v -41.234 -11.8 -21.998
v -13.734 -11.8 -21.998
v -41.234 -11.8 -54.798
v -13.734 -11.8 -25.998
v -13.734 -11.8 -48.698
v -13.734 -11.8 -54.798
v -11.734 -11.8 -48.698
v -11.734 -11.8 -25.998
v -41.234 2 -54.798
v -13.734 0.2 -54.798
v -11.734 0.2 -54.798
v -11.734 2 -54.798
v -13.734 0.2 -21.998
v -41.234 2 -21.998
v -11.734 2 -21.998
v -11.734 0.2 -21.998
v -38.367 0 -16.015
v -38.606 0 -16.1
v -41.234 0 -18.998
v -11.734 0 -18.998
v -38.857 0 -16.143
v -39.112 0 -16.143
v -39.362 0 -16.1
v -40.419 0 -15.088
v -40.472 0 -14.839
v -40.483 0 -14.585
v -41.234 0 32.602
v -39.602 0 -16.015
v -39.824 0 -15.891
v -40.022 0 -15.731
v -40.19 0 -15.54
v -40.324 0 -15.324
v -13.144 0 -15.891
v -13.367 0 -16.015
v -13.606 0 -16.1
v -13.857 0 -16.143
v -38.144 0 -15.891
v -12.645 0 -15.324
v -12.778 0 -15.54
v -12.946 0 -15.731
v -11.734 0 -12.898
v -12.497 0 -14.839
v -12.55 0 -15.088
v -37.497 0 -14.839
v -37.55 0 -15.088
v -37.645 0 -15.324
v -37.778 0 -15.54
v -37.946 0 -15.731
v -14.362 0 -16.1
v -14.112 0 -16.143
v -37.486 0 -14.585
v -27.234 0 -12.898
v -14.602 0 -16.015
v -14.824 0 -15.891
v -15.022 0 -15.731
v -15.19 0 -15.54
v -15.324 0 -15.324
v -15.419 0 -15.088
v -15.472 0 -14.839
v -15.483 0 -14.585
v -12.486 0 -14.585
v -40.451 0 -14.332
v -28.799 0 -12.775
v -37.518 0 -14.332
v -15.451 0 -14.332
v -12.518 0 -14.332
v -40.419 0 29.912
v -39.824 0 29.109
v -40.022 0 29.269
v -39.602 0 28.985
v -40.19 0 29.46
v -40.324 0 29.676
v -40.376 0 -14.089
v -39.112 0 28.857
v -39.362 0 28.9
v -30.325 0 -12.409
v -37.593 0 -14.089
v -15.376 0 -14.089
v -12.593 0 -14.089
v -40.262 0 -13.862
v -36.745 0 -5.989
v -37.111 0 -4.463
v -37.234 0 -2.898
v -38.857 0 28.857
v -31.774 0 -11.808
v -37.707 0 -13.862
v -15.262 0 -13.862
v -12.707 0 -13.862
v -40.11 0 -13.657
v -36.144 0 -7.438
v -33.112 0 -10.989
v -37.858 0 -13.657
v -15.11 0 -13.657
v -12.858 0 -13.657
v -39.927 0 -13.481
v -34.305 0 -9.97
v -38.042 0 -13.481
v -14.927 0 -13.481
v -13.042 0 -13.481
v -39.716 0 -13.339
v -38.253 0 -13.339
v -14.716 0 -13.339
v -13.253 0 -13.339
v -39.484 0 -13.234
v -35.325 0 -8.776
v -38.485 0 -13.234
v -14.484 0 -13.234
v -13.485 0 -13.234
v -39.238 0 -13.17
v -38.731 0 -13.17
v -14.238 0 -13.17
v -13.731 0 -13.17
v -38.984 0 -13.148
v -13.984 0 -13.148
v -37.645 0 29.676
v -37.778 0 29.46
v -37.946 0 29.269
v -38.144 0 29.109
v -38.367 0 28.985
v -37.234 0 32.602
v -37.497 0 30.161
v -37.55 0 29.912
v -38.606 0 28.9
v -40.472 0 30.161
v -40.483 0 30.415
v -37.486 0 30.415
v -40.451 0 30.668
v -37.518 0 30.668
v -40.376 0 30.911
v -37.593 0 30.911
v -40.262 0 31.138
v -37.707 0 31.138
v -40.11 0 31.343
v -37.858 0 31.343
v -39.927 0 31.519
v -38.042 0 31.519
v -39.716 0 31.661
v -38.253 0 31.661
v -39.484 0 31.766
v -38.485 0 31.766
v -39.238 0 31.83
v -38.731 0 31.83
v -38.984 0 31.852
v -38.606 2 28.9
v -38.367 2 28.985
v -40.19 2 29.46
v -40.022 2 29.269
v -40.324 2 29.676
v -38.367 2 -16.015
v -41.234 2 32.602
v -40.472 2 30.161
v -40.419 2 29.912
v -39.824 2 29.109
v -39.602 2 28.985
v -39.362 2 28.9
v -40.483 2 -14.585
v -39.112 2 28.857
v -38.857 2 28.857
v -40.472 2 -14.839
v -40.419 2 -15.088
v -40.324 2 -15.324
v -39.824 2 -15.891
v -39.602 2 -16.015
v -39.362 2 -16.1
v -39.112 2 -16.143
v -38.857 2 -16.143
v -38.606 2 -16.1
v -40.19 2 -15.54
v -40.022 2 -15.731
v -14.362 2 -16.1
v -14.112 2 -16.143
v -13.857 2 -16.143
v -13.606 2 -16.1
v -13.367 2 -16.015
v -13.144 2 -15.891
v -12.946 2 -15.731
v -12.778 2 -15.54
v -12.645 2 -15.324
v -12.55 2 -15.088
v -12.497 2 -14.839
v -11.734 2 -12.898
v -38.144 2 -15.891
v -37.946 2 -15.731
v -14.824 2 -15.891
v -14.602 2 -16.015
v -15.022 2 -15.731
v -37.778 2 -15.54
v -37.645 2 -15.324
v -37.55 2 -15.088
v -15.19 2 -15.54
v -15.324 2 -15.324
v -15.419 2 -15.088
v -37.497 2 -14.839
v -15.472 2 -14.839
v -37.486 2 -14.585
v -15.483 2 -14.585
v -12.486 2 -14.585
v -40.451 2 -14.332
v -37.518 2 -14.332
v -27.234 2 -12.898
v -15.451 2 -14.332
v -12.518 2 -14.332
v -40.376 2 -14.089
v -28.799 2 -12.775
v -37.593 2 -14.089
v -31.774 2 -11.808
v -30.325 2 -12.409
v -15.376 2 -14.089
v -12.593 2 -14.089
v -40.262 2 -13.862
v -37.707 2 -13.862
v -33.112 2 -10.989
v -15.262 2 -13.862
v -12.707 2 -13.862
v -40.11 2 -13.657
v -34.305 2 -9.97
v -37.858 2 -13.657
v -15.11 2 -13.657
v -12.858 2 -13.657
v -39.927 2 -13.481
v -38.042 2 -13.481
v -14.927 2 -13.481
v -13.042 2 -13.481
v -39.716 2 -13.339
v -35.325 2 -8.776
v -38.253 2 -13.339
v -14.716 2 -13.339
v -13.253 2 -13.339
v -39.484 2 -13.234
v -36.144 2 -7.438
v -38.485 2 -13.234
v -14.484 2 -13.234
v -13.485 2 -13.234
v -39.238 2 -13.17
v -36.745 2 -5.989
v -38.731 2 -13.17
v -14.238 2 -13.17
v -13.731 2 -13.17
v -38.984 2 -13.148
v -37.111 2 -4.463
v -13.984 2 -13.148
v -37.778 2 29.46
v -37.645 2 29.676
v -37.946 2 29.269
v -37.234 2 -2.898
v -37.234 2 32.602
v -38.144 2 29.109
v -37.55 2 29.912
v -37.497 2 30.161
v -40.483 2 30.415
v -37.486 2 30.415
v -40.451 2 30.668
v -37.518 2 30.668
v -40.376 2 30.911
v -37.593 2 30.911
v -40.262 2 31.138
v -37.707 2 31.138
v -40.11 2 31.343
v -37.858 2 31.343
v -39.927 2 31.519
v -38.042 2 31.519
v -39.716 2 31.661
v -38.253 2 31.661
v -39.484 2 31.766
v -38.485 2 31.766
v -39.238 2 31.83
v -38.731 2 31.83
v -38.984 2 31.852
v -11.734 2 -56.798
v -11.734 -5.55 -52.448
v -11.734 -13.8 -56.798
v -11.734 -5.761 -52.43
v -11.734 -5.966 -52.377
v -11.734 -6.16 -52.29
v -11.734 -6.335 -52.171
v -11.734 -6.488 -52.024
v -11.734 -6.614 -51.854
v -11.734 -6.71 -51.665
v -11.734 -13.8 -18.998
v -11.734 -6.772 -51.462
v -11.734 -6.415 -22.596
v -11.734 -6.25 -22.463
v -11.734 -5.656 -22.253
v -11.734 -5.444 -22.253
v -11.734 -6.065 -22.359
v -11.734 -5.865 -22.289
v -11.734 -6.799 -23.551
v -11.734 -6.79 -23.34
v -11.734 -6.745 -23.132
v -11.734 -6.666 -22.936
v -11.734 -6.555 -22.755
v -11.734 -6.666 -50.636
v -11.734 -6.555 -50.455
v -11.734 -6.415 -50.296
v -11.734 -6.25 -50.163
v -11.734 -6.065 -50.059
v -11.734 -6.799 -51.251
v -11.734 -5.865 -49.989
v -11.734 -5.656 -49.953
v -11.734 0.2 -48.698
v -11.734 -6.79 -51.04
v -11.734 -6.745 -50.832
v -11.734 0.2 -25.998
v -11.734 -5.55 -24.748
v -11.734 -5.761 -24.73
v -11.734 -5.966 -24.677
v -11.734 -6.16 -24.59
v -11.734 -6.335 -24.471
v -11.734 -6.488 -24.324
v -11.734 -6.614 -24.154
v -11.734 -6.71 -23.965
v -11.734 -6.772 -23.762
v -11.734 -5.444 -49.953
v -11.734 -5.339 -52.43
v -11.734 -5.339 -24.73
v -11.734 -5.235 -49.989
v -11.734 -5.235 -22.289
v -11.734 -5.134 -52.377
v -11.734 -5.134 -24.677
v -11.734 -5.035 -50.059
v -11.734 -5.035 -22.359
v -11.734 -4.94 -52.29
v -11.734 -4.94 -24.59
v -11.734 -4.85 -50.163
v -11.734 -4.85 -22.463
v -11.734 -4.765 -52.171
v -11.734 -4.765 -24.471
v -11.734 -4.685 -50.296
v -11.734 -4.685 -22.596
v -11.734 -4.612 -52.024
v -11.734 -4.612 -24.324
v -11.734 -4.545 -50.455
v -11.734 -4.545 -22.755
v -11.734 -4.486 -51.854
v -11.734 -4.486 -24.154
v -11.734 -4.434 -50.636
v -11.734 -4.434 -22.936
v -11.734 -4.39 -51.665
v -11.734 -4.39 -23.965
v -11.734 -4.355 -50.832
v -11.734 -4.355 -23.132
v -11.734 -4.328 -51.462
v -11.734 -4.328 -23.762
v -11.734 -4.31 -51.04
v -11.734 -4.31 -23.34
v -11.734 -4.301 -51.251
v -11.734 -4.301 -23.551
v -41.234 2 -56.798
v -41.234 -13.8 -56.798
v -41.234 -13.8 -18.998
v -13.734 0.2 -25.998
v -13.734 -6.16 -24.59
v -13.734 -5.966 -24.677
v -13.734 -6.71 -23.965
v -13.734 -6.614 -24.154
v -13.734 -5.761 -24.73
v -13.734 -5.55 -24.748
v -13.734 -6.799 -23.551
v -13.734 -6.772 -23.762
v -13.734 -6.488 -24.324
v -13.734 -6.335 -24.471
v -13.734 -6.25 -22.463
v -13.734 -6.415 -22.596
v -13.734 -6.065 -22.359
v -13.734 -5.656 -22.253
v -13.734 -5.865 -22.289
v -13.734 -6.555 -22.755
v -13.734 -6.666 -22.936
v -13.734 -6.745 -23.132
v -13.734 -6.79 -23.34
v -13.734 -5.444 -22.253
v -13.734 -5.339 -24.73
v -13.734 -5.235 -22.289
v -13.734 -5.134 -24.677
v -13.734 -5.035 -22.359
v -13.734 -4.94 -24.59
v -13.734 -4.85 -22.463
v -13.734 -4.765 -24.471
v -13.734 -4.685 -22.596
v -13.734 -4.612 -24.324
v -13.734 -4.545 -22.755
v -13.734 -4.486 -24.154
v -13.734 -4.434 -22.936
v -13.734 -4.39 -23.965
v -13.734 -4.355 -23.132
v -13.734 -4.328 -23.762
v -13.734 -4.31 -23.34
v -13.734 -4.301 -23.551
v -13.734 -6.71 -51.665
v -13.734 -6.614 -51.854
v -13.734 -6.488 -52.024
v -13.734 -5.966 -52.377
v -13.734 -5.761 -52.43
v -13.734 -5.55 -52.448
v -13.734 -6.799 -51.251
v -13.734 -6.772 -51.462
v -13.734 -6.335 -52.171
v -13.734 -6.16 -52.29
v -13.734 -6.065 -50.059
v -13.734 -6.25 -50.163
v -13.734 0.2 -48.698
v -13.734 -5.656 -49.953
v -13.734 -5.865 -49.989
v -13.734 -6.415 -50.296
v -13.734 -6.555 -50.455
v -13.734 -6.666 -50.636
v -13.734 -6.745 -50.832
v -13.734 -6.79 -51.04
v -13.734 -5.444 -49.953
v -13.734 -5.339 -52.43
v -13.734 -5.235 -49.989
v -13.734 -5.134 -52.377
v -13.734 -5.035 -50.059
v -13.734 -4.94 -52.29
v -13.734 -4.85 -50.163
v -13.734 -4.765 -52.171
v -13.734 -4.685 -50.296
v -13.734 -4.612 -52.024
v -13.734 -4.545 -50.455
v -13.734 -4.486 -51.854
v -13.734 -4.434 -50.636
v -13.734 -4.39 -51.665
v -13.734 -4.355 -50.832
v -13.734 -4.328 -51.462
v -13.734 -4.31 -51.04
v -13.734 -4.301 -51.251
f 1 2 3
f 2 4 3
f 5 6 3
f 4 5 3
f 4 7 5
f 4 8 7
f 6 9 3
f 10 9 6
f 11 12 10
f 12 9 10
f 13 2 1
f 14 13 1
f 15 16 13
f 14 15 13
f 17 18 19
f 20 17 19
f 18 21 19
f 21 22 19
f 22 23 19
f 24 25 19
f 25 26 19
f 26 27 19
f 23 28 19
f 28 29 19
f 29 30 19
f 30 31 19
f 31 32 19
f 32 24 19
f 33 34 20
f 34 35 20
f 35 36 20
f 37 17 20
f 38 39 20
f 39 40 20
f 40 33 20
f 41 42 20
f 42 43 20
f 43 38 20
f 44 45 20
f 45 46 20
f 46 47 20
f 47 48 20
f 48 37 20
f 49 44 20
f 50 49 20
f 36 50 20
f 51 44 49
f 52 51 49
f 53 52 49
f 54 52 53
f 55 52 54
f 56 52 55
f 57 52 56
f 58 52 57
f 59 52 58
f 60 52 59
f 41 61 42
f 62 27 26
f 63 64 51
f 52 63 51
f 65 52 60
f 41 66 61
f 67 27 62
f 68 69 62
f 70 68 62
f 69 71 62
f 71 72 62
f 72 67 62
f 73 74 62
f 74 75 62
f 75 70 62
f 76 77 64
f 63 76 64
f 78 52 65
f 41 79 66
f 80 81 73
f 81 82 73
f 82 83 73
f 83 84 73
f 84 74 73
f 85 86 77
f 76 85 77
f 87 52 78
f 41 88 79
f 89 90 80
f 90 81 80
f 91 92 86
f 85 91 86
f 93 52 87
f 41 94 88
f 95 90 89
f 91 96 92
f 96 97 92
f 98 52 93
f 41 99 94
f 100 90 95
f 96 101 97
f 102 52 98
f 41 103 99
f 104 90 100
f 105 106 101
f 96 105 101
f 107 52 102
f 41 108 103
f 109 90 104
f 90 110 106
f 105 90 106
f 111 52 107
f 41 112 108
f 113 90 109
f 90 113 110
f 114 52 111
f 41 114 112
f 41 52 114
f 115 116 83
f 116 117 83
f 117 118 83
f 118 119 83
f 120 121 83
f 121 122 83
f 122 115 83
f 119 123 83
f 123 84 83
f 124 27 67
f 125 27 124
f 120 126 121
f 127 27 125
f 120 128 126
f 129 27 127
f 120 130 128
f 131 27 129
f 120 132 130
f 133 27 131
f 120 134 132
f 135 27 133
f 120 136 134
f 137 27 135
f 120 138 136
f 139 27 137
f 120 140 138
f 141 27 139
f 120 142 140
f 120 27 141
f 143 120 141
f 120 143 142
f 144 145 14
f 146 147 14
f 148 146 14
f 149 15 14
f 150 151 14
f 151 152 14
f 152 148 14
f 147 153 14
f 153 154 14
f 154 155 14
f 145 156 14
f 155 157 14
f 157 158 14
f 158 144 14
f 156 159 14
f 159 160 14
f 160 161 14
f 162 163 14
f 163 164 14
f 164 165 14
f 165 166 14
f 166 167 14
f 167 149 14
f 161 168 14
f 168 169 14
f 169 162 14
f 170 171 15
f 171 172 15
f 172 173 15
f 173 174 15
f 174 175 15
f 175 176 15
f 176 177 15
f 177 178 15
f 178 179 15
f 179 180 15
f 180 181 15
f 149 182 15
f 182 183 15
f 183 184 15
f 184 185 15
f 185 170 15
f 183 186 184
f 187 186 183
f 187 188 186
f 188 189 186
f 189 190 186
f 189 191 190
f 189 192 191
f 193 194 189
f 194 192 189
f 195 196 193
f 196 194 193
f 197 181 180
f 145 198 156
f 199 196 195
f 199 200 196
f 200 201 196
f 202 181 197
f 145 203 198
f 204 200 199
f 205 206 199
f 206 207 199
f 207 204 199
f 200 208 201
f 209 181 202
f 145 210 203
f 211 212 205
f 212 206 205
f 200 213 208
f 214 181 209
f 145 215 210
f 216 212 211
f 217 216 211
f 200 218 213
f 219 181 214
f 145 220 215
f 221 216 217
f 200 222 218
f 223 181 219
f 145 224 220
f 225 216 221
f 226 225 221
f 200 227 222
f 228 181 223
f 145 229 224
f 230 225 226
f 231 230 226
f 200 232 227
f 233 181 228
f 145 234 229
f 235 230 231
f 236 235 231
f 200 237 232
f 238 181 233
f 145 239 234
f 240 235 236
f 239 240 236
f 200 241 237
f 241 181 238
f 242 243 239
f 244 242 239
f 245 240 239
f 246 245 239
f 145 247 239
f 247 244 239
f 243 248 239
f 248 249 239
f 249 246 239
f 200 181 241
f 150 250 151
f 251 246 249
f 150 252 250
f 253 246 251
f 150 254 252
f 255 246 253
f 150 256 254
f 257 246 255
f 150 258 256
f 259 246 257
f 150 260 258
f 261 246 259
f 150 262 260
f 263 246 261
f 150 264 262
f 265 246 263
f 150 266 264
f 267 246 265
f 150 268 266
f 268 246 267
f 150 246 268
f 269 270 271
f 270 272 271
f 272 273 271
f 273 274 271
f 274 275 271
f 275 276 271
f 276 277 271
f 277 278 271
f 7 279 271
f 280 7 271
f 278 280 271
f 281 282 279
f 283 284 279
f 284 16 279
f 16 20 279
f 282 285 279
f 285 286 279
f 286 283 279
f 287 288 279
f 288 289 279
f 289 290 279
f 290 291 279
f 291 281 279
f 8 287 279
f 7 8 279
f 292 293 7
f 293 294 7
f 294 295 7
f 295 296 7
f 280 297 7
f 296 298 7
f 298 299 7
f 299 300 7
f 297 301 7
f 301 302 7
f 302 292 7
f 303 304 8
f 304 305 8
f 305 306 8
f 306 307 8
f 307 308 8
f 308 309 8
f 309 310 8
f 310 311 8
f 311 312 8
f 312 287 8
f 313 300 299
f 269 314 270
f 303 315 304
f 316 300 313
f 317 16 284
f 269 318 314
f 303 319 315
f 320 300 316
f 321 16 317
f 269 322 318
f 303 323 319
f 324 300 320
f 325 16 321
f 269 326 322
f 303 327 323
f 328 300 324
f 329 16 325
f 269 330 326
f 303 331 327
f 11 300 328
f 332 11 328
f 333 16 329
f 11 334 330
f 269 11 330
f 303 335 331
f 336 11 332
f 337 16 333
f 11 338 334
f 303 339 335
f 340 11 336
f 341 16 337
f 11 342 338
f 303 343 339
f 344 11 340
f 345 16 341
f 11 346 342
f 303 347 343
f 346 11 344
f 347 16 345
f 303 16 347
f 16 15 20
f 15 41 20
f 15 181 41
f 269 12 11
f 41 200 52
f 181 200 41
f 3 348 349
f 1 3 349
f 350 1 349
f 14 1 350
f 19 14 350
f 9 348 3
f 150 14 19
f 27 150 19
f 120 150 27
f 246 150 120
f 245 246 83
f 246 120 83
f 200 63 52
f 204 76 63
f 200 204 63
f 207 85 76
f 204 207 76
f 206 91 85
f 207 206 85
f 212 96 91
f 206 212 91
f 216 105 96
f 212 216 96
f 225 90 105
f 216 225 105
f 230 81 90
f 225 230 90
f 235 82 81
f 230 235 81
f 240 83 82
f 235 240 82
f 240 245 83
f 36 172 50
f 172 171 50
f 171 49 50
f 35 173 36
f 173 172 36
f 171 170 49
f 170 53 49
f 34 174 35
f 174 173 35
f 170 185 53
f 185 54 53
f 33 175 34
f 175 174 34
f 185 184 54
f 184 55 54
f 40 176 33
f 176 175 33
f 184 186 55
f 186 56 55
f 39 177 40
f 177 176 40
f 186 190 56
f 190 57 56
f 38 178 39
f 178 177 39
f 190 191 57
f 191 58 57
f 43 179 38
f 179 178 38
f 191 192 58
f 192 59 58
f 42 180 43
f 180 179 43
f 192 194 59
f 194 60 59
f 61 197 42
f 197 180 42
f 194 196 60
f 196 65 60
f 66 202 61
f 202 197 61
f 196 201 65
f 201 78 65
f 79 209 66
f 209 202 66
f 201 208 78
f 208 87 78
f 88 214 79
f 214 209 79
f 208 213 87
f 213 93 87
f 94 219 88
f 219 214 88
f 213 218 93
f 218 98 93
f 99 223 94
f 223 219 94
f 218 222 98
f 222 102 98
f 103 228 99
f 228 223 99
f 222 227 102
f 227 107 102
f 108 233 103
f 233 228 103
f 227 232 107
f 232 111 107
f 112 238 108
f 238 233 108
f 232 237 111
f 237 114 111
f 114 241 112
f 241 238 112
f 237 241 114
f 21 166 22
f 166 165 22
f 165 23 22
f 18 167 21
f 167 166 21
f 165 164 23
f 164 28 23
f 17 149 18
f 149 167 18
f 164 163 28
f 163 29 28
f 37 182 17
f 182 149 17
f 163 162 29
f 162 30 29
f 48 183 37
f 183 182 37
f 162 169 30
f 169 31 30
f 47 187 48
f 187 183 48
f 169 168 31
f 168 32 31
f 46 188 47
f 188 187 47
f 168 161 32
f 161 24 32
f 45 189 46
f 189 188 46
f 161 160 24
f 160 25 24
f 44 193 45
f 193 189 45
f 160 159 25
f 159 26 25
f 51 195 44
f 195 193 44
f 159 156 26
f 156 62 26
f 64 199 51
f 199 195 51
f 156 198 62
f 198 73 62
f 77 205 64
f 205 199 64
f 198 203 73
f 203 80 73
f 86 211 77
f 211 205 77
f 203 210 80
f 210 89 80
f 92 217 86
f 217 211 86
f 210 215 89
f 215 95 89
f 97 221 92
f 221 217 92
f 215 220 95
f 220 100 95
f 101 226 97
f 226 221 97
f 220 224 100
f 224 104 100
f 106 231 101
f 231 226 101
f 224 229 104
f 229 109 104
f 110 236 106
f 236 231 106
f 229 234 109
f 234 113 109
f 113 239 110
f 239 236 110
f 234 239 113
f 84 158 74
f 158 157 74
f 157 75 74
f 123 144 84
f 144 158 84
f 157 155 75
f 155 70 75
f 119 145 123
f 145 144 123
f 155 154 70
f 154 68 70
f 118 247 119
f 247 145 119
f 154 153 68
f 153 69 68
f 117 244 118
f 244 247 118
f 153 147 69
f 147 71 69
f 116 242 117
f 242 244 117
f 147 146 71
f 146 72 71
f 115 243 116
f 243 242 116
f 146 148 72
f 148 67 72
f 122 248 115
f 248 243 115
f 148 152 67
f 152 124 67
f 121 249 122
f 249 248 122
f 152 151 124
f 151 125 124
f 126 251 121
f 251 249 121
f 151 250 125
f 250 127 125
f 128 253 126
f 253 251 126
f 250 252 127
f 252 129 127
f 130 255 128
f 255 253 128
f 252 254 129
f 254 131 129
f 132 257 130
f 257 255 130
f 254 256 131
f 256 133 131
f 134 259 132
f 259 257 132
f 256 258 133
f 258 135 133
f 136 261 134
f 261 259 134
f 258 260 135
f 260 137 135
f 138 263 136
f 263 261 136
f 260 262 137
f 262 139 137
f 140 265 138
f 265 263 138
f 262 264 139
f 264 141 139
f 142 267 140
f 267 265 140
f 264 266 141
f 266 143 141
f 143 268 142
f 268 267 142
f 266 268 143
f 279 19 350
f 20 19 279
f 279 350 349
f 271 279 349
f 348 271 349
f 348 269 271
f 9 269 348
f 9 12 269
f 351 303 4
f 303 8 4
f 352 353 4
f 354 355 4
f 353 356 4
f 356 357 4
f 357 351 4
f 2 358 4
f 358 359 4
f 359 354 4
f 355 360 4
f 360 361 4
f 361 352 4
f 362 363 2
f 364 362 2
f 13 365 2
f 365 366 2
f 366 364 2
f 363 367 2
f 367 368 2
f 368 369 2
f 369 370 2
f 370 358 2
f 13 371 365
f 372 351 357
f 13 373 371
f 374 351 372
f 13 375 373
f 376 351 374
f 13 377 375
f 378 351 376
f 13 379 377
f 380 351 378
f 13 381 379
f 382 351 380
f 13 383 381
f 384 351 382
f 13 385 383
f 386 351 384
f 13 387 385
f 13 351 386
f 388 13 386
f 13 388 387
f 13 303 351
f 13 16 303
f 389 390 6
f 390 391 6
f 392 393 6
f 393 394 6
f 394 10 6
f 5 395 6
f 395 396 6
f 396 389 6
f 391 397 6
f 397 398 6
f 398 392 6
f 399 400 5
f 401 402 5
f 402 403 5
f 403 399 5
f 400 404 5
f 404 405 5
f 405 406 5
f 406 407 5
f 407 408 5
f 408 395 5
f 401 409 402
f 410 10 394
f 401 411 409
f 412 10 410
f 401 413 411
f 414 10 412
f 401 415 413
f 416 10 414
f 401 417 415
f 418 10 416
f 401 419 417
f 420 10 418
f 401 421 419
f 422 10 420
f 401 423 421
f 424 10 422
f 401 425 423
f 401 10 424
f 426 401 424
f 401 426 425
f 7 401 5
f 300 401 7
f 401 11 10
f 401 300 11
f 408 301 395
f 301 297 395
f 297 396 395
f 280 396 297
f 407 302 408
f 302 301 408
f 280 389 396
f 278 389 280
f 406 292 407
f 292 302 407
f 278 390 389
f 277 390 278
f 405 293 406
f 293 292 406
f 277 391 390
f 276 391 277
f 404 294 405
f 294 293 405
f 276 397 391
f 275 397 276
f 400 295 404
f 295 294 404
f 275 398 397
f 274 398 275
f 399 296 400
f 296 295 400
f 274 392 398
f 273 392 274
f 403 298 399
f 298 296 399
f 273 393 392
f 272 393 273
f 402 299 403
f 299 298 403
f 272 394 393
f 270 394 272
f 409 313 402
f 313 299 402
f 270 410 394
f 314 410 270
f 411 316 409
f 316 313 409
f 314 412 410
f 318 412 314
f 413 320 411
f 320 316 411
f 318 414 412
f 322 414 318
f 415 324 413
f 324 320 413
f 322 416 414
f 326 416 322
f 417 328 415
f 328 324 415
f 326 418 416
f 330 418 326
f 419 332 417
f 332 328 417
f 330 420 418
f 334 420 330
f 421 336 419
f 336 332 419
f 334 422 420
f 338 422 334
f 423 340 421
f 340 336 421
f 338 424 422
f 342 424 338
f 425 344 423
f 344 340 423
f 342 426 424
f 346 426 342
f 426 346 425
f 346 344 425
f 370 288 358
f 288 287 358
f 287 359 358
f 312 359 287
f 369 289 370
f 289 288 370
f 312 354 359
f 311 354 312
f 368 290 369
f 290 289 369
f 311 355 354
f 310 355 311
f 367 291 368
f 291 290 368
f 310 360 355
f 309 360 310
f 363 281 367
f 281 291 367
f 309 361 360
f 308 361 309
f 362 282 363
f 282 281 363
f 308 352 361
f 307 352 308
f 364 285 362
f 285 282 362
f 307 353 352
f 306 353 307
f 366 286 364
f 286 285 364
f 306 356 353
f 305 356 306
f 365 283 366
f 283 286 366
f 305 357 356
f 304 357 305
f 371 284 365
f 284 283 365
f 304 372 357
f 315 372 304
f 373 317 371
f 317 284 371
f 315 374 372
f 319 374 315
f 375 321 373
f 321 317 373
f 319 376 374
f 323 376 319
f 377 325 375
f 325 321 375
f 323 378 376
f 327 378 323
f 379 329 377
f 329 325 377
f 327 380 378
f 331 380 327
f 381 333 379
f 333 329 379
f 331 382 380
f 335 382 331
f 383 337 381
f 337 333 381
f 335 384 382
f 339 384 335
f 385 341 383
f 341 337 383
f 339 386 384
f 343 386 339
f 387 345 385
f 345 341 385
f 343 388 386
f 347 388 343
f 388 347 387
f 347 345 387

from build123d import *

# Parameters (mm, degrees)
BOSS_EXTRUDE1_DEPTH = 2
FILLET1_R           = 10
SKETCH2_R           = 1.5
CUT_EXTRUDE1_DEPTH  = 53.603569832
SKETCH3_W           = 29.5
SKETCH3_H           = 2
BOSS_EXTRUDE2_DEPTH = 5.1
SKETCH4_W           = 29.5
SKETCH4_H           = 3
BOSS_EXTRUDE3_DEPTH = 13.8
SKETCH5_W           = 29.5
SKETCH5_H           = 2
BOSS_EXTRUDE5_DEPTH = 34.8
SKETCH7_W           = 29.5
SKETCH7_H           = 2
BOSS_EXTRUDE6_DEPTH = 13.8
SKETCH8_W           = 2
SKETCH8_H           = 4
SKETCH8_H_2         = 6.1
BOSS_EXTRUDE7_DEPTH = 12
SKETCH9_2_R         = 1.25
CUT_EXTRUDE3_DEPTH  = 12


with BuildPart() as part:
    # Sketch1 → Boss-Extrude1 (new body)
    with BuildSketch(Plane(origin=(0, 0, 0), x_dir=(1, 0, 0), z_dir=(0, 1, 0))):
        Polygon((-41.234375, 16.8984375), (-41.234375, -32.6015625), (-37.234375, -32.6015625), (-37.234375, 12.8984375), (-11.734375, 12.8984375), (-11.734375, 16.8984375), align=None)
    extrude(amount=BOSS_EXTRUDE1_DEPTH)

    # Fillet1
    fillet1_edges = [part.edges().sort_by_distance(p)[0] for p in [
        (-37.234375, 1, -12.8984375),
    ]]
    fillet(fillet1_edges, radius=FILLET1_R)

    # Sketch2 → Cut-Extrude1 (cut, through all)
    with BuildSketch(Plane(origin=(0, 2, 0), x_dir=(1, 0, 0), z_dir=(0, 1, 0))):
        with Locations((-38.984375, -30.3515625)):
            Circle(SKETCH2_R)
        with Locations((-38.984375, 14.6484375)):
            Circle(SKETCH2_R)
        with Locations((-13.984375, 14.6484375)):
            Circle(SKETCH2_R)
    extrude(amount=-CUT_EXTRUDE1_DEPTH, mode=Mode.SUBTRACT)

    # Sketch3 → Boss-Extrude2 (add)
    with BuildSketch(Plane(origin=(0, 0, -16.8984375), x_dir=(-1, 0, 0), z_dir=(0, 0, -1))):
        with Locations((26.484375, 1)):
            Rectangle(SKETCH3_W, SKETCH3_H)
    extrude(amount=BOSS_EXTRUDE2_DEPTH)

    # Sketch4 → Boss-Extrude3 (add)
    with BuildSketch(Plane.XZ):
        with Locations((-26.484375, -20.4984375)):
            Rectangle(SKETCH4_W, SKETCH4_H)
    extrude(amount=BOSS_EXTRUDE3_DEPTH)

    # Sketch5 → Boss-Extrude5 (add)
    with BuildSketch(Plane(origin=(0, 0, -21.9984375), x_dir=(-1, 0, 0), z_dir=(0, 0, -1))):
        with Locations((26.484375, -12.8)):
            Rectangle(SKETCH5_W, SKETCH5_H)
    extrude(amount=BOSS_EXTRUDE5_DEPTH)

    # Sketch7 → Boss-Extrude6 (add)
    with BuildSketch(Plane(origin=(0, -11.8, 0), x_dir=(1, 0, 0), z_dir=(0, 1, 0))):
        with Locations((-26.484375, 55.7984375)):
            Rectangle(SKETCH7_W, SKETCH7_H)
    extrude(amount=BOSS_EXTRUDE6_DEPTH)

    # Sketch8 → Boss-Extrude7 (add)
    with BuildSketch(Plane(origin=(0, -11.8, 0), x_dir=(1, 0, 0), z_dir=(0, 1, 0))):
        with Locations((-12.734375, 23.9984375)):
            Rectangle(SKETCH8_W, SKETCH8_H)
        with Locations((-12.734375, 51.7484375)):
            Rectangle(SKETCH8_W, SKETCH8_H_2)
    extrude(amount=BOSS_EXTRUDE7_DEPTH)

    # Sketch9<2> → Cut-Extrude3 (cut)
    with BuildSketch(Plane(origin=(-11.734375, 0, 0), x_dir=(0, 0, -1), z_dir=(1, 0, 0))):
        with Locations((23.4984375, -5.55)):
            Circle(SKETCH9_2_R)
        with Locations((51.1984375, -5.55)):
            Circle(SKETCH9_2_R)
    extrude(amount=-CUT_EXTRUDE3_DEPTH, mode=Mode.SUBTRACT)


solid = part.part
